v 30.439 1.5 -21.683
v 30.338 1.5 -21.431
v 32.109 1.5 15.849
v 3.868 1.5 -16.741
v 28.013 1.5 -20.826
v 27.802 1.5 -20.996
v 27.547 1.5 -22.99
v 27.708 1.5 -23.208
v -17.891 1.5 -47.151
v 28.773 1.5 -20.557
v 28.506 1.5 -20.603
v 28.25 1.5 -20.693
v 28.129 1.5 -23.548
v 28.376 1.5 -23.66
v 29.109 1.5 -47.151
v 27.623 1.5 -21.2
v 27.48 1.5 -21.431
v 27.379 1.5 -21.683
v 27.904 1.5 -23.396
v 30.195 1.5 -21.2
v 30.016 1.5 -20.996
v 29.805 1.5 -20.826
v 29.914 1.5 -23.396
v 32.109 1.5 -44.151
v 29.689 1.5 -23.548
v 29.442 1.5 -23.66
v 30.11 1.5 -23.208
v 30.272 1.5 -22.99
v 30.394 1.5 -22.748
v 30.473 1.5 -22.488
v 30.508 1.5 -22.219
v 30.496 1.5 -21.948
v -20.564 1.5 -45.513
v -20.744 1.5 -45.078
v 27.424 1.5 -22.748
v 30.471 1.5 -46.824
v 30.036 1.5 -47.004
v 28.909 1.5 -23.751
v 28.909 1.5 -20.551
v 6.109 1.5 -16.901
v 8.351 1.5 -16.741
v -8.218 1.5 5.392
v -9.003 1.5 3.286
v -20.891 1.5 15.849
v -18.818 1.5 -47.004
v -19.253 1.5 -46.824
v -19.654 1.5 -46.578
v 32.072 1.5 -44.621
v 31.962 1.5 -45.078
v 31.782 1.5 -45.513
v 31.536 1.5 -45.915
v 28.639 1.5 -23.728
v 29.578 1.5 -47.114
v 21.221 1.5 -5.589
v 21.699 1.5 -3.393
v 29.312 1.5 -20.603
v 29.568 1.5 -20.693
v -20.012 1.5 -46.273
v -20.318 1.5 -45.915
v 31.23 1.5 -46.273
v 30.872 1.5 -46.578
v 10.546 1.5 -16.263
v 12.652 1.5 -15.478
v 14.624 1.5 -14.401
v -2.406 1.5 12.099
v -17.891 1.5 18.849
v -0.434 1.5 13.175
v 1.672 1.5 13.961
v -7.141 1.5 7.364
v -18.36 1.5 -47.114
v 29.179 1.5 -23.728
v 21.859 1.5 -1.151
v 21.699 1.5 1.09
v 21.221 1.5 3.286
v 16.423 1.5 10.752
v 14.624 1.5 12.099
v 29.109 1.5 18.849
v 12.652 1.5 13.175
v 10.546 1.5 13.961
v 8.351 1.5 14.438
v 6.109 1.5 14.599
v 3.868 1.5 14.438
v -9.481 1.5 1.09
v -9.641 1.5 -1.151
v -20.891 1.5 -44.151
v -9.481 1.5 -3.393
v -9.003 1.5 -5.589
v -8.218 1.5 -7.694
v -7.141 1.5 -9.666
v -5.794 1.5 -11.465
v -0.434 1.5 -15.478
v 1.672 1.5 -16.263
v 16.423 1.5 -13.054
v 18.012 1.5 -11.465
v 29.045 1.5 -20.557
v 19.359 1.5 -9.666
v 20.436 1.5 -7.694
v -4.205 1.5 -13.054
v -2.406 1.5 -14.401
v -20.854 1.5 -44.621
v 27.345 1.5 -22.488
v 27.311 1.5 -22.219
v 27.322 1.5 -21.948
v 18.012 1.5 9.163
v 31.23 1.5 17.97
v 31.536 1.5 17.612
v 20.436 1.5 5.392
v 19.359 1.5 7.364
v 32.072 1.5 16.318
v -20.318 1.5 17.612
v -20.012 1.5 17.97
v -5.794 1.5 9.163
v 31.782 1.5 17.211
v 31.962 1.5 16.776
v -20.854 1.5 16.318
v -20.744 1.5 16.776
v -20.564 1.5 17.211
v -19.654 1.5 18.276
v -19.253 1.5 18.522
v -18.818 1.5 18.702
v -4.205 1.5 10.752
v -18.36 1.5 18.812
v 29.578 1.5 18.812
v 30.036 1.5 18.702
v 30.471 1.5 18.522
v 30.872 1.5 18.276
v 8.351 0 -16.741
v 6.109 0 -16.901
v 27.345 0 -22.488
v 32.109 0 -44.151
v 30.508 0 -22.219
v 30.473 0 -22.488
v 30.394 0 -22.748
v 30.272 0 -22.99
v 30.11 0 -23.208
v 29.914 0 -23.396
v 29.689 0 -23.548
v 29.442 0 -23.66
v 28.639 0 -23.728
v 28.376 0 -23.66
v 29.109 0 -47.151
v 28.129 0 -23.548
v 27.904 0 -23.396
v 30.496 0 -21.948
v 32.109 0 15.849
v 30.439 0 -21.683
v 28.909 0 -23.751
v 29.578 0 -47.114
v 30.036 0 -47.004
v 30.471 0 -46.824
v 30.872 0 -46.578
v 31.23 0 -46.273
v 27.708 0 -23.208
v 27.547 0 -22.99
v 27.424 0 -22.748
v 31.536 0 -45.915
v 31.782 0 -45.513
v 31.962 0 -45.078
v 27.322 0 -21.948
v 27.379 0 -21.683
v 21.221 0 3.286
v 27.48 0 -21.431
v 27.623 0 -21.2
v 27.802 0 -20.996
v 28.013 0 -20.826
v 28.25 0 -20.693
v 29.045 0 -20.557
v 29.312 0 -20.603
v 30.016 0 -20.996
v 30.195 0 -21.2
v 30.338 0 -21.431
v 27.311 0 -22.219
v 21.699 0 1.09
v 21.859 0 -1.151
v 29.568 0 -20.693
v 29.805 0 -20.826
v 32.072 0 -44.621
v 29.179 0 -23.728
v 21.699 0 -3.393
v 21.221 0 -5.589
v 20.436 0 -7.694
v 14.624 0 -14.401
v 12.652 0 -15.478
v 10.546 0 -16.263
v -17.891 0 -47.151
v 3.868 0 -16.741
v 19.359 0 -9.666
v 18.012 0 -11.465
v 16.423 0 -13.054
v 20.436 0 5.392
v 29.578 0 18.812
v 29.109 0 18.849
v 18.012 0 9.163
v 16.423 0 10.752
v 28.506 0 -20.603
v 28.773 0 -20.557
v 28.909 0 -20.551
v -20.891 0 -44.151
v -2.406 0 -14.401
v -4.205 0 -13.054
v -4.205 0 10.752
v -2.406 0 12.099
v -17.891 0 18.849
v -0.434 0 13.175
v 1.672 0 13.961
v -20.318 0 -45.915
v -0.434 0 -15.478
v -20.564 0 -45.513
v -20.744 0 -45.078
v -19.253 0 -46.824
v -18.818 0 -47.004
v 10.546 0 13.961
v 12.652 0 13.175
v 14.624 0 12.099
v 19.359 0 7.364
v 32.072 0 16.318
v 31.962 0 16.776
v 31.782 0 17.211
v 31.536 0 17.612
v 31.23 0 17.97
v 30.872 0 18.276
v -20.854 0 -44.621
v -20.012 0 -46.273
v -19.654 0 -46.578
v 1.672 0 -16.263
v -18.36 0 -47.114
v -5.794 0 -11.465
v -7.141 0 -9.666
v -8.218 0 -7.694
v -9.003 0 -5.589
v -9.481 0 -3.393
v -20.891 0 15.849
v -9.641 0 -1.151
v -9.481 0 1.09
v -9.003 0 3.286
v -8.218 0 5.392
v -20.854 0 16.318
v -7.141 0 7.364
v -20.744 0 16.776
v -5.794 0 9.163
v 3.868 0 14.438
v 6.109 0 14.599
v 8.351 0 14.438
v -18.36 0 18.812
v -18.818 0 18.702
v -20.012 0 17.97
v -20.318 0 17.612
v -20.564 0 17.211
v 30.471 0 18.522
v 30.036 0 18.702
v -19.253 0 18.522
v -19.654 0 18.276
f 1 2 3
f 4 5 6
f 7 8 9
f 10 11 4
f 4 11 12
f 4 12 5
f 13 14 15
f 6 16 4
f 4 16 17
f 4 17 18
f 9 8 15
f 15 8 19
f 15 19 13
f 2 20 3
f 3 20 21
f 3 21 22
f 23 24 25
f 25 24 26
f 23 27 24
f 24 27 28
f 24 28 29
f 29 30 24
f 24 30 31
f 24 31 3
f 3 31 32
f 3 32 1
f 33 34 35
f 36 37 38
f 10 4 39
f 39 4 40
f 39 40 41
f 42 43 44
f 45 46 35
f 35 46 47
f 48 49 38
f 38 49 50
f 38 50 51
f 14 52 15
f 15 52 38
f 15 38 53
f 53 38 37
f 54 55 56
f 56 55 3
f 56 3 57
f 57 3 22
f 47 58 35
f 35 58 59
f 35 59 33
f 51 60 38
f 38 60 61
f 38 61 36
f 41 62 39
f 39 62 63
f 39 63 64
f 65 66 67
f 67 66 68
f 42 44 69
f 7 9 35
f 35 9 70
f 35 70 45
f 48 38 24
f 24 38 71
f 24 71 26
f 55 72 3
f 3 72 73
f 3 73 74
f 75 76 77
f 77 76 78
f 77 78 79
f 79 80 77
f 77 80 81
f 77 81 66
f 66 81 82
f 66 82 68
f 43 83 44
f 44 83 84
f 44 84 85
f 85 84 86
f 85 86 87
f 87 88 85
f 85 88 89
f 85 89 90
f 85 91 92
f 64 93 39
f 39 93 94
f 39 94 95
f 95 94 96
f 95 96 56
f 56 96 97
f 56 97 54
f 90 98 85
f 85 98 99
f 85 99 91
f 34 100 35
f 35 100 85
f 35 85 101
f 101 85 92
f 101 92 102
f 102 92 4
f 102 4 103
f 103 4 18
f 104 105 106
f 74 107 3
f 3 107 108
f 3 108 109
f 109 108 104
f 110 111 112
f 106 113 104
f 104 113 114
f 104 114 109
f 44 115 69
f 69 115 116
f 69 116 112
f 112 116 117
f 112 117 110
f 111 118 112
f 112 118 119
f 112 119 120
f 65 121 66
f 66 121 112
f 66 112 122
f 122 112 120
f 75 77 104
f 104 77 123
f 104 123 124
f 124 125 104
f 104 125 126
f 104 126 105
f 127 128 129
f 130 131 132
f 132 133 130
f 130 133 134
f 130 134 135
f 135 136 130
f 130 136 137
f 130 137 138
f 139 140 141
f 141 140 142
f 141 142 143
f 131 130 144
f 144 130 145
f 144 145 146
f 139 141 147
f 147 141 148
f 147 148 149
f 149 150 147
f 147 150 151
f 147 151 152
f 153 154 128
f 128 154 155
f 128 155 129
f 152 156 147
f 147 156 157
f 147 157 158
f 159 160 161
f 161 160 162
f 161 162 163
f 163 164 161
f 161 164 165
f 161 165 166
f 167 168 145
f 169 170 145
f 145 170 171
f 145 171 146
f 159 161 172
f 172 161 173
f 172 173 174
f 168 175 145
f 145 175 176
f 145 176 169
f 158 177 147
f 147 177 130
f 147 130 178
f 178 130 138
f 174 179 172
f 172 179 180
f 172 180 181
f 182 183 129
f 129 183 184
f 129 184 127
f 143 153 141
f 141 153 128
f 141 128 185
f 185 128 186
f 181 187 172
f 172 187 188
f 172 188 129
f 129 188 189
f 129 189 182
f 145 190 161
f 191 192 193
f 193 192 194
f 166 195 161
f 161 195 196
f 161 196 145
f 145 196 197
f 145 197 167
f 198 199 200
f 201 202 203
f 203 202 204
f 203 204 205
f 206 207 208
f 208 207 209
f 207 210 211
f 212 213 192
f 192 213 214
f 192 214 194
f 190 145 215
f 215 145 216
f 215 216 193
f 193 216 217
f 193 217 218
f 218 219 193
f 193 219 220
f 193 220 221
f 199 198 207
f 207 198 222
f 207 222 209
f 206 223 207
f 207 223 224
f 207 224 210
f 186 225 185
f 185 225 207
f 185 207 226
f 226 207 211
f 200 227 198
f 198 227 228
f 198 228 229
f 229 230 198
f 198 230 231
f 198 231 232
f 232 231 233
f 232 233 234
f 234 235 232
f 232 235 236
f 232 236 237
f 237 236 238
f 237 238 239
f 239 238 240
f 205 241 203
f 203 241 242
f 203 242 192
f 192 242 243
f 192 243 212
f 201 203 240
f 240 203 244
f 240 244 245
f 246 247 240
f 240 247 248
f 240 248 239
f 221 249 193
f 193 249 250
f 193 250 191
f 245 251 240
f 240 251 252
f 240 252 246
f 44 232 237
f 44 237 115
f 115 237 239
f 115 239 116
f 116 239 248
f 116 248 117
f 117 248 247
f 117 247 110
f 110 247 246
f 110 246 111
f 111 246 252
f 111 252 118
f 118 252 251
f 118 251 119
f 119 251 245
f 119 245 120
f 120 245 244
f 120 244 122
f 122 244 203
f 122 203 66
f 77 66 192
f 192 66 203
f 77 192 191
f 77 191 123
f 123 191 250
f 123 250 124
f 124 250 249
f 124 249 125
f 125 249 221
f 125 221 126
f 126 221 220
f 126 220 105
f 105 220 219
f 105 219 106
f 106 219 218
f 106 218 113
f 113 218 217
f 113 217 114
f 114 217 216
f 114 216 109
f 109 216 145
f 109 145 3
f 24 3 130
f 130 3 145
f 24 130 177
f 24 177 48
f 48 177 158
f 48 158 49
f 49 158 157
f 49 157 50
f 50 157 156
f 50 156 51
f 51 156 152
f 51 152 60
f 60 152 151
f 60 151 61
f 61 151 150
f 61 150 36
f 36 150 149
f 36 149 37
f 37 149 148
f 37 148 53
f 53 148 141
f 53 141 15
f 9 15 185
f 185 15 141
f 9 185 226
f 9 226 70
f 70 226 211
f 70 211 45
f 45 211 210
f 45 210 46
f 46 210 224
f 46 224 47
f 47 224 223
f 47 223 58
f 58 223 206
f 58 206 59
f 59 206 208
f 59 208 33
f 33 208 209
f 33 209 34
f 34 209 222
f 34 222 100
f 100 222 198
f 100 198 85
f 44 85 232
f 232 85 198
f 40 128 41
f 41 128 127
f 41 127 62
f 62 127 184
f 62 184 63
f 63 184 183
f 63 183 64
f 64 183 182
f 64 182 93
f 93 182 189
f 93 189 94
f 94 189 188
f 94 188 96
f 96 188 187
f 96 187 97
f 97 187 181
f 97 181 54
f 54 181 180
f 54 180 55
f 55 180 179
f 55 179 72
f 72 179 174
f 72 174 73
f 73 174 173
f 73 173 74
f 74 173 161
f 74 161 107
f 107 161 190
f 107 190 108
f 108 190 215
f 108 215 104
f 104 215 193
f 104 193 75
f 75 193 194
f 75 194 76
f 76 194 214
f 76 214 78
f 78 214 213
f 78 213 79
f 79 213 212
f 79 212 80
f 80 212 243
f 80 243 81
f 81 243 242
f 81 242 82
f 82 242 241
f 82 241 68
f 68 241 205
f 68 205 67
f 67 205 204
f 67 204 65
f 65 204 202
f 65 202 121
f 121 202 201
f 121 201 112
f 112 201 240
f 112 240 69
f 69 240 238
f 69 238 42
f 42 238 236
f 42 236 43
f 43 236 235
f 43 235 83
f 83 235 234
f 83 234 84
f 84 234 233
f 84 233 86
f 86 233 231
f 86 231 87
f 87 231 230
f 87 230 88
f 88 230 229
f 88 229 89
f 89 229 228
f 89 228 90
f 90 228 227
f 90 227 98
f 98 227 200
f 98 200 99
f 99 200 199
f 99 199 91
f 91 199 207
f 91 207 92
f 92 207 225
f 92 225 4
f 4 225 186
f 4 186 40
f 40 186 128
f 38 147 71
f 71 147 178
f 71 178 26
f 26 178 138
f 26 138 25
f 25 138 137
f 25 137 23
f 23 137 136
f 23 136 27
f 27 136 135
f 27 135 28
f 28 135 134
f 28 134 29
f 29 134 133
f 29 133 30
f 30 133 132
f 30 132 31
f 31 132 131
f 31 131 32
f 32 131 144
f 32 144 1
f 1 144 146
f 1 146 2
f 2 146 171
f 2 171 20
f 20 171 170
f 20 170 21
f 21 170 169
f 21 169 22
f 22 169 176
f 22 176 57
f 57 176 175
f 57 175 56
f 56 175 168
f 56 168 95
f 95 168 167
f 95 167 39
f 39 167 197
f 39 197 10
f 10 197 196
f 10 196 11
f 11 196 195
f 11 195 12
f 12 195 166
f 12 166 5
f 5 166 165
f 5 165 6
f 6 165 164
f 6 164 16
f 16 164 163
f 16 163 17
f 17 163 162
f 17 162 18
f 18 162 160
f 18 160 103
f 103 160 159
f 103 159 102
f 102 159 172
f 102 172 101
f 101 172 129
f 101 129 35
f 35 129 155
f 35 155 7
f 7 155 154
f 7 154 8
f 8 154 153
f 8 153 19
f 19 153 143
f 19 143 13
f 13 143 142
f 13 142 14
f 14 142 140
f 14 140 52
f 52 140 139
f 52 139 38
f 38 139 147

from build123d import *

# Parameters (mm, degrees)
SKETCH1_R           = 15.75
SKETCH1_R_2         = 1.6
BOSS_EXTRUDE2_DEPTH = 1.5


with BuildPart() as part:
    # Sketch1 → Boss-Extrude2 (new body)
    with BuildSketch(Plane(origin=(0, 0, 0), x_dir=(1, 0, 0), z_dir=(0, 1, 0))):
        with BuildLine():
            Line((-17.890919225, 47.151235704), (29.109080775, 47.151235704))
            ThreePointArc((29.109080775, 47.151235704), (31.230401119, 46.272556047), (32.109080775, 44.151235704))
            Line((32.109080775, 44.151235704), (32.109080775, -15.848764296))
            ThreePointArc((32.109080775, -15.848764296), (31.230401119, -17.97008464), (29.109080775, -18.848764296))
            Line((29.109080775, -18.848764296), (-17.890919225, -18.848764296))
            ThreePointArc((-17.890919225, -18.848764296), (-20.012239568, -17.97008464), (-20.890919225, -15.848764296))
            Line((-20.890919225, -15.848764296), (-20.890919225, 44.151235704))
            ThreePointArc((-20.890919225, 44.151235704), (-20.012239568, 46.272556047), (-17.890919225, 47.151235704))
        make_face()
        with Locations(Location((6.109080775, 1.151235704, 0), (0, 0, 270))):
            Circle(SKETCH1_R, mode=Mode.SUBTRACT)
        with Locations(Location((28.909080775, 22.151235704, 0), (0, 0, 270))):
            Circle(SKETCH1_R_2, mode=Mode.SUBTRACT)
    extrude(amount=BOSS_EXTRUDE2_DEPTH)


solid = part.part
